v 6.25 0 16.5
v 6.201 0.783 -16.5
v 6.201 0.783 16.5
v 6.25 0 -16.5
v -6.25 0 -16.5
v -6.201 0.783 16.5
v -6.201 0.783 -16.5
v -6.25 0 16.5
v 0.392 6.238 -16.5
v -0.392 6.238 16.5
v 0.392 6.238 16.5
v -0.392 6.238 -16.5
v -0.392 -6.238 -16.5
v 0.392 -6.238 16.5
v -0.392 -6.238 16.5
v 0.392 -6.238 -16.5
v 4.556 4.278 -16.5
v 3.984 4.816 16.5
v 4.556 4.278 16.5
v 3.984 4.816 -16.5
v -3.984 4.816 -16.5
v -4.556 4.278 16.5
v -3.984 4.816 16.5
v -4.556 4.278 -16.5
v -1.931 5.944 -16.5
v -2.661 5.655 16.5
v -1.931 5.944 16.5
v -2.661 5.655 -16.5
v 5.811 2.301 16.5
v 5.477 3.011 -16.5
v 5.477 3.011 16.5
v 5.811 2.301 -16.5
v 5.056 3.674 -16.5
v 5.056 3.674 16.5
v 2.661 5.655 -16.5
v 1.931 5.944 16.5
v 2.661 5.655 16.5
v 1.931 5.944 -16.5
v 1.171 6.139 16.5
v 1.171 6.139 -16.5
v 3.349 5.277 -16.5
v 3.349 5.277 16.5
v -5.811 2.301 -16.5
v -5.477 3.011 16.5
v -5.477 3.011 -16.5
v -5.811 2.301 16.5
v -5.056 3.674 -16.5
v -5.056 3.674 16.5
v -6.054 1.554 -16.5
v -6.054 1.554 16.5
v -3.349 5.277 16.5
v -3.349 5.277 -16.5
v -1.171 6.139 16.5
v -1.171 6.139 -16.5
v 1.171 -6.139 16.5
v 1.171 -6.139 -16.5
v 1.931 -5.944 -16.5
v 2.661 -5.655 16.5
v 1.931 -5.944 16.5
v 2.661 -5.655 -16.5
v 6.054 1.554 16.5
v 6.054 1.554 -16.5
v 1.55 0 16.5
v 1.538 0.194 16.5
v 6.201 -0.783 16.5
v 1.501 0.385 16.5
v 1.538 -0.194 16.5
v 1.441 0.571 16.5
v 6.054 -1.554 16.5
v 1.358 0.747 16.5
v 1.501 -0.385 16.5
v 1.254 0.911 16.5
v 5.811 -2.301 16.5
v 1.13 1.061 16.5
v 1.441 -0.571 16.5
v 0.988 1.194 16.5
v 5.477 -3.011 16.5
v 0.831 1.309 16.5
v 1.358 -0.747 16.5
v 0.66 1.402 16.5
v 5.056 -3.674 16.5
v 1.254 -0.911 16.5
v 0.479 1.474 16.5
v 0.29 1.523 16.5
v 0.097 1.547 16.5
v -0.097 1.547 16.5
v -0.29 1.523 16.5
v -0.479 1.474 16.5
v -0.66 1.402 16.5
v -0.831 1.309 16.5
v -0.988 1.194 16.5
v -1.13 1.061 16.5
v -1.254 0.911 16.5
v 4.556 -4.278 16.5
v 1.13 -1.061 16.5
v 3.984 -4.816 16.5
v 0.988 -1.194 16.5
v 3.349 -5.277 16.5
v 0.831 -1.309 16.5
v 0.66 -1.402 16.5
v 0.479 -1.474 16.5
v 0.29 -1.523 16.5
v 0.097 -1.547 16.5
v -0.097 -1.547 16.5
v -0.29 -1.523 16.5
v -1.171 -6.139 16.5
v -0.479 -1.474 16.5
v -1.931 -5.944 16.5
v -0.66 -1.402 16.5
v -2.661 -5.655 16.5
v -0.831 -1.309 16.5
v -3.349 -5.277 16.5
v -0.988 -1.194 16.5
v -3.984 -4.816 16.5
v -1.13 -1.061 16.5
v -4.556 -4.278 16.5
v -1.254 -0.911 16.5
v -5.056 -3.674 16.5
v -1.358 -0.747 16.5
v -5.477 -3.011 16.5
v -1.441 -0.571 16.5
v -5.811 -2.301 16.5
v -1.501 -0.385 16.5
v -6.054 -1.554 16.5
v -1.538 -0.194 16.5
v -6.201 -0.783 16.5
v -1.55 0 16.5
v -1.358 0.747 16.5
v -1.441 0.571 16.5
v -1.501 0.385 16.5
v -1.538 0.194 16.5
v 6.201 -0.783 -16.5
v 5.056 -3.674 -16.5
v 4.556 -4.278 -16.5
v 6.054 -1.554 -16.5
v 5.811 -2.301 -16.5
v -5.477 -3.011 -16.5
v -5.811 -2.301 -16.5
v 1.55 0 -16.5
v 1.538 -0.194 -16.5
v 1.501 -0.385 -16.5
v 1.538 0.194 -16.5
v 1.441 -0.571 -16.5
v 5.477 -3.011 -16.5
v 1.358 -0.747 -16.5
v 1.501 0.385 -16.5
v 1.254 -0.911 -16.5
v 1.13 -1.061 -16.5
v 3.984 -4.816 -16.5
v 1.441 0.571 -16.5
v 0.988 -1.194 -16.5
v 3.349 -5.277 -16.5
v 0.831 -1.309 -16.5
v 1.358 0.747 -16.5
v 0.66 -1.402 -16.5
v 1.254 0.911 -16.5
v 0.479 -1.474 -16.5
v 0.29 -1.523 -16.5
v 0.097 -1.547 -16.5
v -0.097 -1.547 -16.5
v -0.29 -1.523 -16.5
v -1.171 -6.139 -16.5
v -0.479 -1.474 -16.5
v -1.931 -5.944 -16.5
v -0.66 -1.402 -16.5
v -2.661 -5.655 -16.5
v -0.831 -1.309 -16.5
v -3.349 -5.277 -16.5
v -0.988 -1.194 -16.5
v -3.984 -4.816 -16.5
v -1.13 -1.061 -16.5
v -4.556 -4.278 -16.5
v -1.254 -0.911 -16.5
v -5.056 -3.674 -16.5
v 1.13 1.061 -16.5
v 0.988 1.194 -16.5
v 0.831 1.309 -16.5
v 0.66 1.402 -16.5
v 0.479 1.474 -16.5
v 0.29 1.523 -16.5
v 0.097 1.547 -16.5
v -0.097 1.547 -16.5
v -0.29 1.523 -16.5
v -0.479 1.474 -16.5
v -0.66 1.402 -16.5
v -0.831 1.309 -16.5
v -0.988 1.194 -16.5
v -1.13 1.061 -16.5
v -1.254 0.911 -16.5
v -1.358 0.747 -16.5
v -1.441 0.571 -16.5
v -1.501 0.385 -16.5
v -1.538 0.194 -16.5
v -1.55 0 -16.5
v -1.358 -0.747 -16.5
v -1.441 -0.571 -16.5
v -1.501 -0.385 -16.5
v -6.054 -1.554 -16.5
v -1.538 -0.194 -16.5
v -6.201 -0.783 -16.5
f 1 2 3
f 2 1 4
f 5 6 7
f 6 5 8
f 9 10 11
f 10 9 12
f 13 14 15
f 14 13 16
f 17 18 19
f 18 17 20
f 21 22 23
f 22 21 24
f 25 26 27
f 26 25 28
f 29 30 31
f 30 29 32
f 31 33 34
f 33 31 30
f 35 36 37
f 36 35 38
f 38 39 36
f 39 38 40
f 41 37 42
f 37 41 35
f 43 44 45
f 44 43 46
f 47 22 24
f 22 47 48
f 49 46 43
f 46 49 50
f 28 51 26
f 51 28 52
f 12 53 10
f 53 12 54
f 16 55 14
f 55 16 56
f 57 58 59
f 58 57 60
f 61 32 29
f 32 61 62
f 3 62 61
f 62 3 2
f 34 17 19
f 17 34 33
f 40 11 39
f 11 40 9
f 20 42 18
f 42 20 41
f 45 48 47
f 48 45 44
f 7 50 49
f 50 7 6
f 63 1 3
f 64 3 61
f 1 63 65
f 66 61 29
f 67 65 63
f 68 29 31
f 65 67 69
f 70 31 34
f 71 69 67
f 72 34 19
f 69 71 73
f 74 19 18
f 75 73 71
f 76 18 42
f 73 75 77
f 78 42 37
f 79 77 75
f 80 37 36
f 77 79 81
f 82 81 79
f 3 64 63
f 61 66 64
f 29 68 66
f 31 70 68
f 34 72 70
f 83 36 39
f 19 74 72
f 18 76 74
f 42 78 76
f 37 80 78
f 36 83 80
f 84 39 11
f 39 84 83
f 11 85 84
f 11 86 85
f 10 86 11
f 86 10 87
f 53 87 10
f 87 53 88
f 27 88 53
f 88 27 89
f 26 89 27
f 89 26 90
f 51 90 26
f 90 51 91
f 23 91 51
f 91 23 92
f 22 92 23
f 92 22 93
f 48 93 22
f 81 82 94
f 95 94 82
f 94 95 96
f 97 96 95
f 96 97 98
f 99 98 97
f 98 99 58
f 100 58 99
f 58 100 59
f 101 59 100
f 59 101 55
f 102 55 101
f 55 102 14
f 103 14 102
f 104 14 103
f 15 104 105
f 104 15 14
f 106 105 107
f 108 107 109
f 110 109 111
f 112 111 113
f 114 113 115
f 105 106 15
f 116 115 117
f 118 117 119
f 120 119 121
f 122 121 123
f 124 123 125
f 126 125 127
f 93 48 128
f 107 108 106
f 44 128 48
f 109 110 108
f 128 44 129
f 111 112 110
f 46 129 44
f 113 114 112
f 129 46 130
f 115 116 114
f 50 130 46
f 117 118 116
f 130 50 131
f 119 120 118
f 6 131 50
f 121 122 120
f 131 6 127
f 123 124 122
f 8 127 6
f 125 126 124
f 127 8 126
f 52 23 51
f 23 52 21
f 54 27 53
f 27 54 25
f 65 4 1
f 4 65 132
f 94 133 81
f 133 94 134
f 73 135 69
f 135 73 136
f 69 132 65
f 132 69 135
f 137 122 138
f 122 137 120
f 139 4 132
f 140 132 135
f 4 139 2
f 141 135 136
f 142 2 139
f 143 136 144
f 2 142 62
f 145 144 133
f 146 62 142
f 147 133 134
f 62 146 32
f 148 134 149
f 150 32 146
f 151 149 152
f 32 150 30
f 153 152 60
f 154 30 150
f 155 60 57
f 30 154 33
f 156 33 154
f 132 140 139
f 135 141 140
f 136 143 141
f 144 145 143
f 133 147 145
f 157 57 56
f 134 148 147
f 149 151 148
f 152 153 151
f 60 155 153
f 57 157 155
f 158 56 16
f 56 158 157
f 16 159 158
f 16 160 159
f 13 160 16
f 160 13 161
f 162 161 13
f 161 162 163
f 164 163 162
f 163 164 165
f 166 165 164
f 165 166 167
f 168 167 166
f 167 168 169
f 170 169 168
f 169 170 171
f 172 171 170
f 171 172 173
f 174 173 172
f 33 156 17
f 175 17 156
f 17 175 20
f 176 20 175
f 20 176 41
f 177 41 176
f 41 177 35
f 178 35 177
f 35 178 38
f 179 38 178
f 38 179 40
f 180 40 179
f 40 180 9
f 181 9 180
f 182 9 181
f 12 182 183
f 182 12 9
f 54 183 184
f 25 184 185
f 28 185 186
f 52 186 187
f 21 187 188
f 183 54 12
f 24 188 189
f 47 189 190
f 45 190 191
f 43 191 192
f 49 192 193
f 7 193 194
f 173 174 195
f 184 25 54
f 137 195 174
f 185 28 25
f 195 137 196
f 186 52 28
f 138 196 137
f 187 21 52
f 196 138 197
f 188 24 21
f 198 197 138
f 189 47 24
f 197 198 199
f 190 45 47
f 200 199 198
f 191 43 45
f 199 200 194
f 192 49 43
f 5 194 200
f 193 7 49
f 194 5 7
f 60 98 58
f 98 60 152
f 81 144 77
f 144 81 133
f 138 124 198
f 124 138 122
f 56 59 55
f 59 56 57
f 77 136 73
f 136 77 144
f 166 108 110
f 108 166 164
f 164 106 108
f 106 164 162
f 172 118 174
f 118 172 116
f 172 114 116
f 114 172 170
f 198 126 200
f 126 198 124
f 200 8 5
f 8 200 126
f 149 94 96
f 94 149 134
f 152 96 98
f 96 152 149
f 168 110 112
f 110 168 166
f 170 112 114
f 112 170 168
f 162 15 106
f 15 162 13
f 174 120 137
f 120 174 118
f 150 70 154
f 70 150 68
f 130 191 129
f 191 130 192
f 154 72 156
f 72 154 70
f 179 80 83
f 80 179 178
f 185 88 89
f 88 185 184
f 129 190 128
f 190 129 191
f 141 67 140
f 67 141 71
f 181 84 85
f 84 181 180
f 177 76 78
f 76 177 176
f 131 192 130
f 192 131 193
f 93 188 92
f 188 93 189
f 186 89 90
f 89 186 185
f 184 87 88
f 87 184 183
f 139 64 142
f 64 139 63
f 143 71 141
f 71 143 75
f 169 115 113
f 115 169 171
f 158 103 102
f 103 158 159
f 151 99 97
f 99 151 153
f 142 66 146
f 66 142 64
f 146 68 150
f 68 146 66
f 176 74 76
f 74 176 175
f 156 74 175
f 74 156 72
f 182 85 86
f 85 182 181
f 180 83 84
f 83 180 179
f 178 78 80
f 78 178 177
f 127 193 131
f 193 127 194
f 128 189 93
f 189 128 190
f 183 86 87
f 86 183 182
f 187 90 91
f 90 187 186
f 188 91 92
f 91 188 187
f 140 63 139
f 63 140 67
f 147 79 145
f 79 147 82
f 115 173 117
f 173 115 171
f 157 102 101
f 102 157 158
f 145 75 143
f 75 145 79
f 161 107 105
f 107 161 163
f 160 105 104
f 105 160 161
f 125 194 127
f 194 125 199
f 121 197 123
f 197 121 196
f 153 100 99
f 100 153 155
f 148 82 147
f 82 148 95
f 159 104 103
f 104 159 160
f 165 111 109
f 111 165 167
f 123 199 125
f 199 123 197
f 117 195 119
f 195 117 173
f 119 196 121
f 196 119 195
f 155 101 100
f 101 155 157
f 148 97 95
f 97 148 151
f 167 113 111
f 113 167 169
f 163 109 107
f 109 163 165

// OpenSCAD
$fn = 50;


difference() {
	union() {
		translate(v = [0, 0, -16.5000000000]) {
			cylinder(h = 33, r = 6.2500000000);
		}
	}
	union() {
		translate(v = [0, 0, -100.0000000000]) {
			cylinder(h = 200, r = 1.5500000000);
		}
	}
}
